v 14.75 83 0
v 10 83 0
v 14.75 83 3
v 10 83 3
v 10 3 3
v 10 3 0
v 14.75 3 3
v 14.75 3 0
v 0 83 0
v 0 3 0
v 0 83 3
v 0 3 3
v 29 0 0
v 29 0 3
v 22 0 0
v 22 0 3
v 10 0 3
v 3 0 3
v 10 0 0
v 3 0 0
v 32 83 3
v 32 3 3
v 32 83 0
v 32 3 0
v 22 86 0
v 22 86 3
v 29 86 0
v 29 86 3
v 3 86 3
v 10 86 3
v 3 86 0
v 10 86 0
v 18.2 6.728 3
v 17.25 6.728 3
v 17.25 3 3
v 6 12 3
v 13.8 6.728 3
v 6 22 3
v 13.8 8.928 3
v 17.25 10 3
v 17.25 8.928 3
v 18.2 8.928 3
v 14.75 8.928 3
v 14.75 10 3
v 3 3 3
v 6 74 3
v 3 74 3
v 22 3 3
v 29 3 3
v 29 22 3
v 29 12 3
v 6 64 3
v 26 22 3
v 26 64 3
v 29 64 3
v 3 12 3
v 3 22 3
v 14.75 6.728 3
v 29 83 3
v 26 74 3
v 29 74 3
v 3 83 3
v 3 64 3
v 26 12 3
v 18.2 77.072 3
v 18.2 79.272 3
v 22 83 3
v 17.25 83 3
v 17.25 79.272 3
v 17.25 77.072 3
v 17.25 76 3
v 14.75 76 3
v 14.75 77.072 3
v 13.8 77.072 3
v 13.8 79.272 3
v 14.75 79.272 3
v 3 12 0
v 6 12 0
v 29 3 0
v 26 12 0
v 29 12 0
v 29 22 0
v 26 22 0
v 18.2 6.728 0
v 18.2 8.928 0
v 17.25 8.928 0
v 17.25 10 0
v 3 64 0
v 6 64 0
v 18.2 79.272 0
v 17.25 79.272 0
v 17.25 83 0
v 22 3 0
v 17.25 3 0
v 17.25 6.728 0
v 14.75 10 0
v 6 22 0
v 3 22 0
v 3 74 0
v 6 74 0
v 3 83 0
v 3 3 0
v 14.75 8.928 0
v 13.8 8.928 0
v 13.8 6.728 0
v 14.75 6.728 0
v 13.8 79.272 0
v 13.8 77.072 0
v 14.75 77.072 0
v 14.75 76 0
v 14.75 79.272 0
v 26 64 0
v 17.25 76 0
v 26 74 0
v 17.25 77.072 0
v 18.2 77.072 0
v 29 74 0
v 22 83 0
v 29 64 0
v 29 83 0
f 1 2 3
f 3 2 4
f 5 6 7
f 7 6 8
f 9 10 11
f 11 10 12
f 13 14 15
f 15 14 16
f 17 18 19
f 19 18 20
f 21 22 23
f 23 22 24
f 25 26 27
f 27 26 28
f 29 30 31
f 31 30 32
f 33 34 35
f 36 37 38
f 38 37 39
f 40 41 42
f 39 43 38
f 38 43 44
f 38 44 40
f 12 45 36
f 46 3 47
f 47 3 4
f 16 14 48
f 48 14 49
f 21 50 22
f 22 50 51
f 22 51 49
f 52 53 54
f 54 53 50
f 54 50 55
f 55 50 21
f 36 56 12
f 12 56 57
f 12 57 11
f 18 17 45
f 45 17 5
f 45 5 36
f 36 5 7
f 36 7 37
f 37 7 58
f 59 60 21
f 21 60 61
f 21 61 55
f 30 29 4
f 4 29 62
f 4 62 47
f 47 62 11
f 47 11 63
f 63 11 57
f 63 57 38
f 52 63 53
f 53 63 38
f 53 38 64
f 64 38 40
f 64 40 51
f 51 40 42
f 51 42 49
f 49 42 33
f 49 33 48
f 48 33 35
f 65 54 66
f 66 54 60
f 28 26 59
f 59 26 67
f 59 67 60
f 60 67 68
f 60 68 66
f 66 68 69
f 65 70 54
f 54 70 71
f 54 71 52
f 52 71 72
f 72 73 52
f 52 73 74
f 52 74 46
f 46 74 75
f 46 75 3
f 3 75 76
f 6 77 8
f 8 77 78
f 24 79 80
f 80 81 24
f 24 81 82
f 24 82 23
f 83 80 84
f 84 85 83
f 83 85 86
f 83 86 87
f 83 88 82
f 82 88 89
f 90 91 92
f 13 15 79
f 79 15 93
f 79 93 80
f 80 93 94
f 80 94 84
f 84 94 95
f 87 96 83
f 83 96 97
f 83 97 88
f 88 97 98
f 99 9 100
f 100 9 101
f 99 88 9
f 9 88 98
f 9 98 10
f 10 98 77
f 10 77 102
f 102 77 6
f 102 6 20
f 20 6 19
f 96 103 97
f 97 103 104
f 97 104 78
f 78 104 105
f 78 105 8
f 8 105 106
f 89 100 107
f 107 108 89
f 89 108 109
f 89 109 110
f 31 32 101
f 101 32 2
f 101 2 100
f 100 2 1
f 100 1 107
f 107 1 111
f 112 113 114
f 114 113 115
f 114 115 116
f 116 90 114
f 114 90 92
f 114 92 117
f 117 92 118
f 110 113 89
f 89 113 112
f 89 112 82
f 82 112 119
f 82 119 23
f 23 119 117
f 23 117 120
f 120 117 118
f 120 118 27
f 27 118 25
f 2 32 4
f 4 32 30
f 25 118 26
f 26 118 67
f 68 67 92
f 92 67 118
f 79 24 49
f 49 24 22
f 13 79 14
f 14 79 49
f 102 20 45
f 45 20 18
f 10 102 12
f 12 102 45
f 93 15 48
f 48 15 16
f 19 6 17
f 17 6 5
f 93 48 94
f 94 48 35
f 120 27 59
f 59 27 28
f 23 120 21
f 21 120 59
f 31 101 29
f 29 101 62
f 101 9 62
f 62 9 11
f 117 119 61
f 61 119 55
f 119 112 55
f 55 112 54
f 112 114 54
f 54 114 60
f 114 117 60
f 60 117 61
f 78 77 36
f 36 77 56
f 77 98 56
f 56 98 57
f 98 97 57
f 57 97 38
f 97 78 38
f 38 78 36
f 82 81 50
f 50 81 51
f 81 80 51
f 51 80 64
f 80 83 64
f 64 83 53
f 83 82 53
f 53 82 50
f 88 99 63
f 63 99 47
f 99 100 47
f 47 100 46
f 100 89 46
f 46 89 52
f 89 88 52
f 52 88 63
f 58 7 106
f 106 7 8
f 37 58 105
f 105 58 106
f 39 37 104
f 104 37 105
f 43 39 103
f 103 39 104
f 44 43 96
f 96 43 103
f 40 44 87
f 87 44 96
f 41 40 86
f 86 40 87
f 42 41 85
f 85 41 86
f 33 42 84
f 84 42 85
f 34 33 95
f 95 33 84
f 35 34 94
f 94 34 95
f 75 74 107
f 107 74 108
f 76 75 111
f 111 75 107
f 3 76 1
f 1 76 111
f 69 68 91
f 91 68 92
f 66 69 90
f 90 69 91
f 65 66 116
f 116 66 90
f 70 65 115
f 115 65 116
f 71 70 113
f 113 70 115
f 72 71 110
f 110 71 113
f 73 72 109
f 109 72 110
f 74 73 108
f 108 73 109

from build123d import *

# Parameters (mm, degrees)
SKETCH_1_W          = 32
SKETCH_1_H          = 86
EXTRUDE_1_DEPTH     = 3
SKETCH_2_W          = 12
SKETCH_2_H          = 3
SKETCH_2_W_2        = 3
CUT_EXTRUDE_1_DEPTH = 4
SKETCH_3_W          = 3
SKETCH_3_H          = 10
CUT_EXTRUDE_2_DEPTH = 4
CUT_EXTRUDE_3_DEPTH = 10


with BuildPart() as part:
    # 스케치1 → 보스-돌출1 (new body)
    with BuildSketch(Plane.XY):
        with Locations((16, 43)):
            Rectangle(SKETCH_1_W, SKETCH_1_H)
    extrude(amount=EXTRUDE_1_DEPTH)

    # 스케치2 → 컷-돌출1 (cut, through all)
    with BuildSketch(Plane.XY.offset(3)):
        with Locations((16, 84.5)):
            Rectangle(SKETCH_2_W, SKETCH_2_H)
        with Locations((1.5, 84.5)):
            Rectangle(SKETCH_2_W_2, SKETCH_2_H)
        with Locations((30.5, 84.5)):
            Rectangle(SKETCH_2_W_2, SKETCH_2_H)
        with Locations((16, 1.5)):
            Rectangle(SKETCH_2_W, SKETCH_2_H)
        with Locations((1.5, 1.5)):
            Rectangle(SKETCH_2_W_2, SKETCH_2_H)
        with Locations((30.5, 1.5)):
            Rectangle(SKETCH_2_W_2, SKETCH_2_H)
    extrude(amount=-CUT_EXTRUDE_1_DEPTH, mode=Mode.SUBTRACT)

    # 스케치3 → 컷-돌출2 (cut, through all)
    with BuildSketch(Plane.XY.offset(3)):
        with Locations((27.5, 69)):
            Rectangle(SKETCH_3_W, SKETCH_3_H)
        with Locations((4.5, 69)):
            Rectangle(SKETCH_3_W, SKETCH_3_H)
        with Locations((27.5, 17)):
            Rectangle(SKETCH_3_W, SKETCH_3_H)
        with Locations((4.5, 17)):
            Rectangle(SKETCH_3_W, SKETCH_3_H)
    extrude(amount=-CUT_EXTRUDE_2_DEPTH, mode=Mode.SUBTRACT)

    # 스케치4 → 컷-돌출3 (cut)
    with BuildSketch(Plane.XY.offset(3)):
        Polygon((14.75, 3), (17.25, 3), (17.25, 6.727769783), (18.2, 6.727769783), (18.2, 8.927769783), (17.25, 8.927769783), (17.25, 10), (14.75, 10), (14.75, 8.927769783), (13.8, 8.927769783), (13.8, 6.727769783), (14.75, 6.727769783), align=None)
        Polygon((13.8, 77.072230217), (14.75, 77.072230217), (14.75, 76), (17.25, 76), (17.25, 77.072230217), (18.2, 77.072230217), (18.2, 79.272230217), (17.25, 79.272230217), (17.25, 83), (14.75, 83), (14.75, 79.272230217), (13.8, 79.272230217), align=None)
    extrude(amount=-CUT_EXTRUDE_3_DEPTH, mode=Mode.SUBTRACT)


solid = part.part
